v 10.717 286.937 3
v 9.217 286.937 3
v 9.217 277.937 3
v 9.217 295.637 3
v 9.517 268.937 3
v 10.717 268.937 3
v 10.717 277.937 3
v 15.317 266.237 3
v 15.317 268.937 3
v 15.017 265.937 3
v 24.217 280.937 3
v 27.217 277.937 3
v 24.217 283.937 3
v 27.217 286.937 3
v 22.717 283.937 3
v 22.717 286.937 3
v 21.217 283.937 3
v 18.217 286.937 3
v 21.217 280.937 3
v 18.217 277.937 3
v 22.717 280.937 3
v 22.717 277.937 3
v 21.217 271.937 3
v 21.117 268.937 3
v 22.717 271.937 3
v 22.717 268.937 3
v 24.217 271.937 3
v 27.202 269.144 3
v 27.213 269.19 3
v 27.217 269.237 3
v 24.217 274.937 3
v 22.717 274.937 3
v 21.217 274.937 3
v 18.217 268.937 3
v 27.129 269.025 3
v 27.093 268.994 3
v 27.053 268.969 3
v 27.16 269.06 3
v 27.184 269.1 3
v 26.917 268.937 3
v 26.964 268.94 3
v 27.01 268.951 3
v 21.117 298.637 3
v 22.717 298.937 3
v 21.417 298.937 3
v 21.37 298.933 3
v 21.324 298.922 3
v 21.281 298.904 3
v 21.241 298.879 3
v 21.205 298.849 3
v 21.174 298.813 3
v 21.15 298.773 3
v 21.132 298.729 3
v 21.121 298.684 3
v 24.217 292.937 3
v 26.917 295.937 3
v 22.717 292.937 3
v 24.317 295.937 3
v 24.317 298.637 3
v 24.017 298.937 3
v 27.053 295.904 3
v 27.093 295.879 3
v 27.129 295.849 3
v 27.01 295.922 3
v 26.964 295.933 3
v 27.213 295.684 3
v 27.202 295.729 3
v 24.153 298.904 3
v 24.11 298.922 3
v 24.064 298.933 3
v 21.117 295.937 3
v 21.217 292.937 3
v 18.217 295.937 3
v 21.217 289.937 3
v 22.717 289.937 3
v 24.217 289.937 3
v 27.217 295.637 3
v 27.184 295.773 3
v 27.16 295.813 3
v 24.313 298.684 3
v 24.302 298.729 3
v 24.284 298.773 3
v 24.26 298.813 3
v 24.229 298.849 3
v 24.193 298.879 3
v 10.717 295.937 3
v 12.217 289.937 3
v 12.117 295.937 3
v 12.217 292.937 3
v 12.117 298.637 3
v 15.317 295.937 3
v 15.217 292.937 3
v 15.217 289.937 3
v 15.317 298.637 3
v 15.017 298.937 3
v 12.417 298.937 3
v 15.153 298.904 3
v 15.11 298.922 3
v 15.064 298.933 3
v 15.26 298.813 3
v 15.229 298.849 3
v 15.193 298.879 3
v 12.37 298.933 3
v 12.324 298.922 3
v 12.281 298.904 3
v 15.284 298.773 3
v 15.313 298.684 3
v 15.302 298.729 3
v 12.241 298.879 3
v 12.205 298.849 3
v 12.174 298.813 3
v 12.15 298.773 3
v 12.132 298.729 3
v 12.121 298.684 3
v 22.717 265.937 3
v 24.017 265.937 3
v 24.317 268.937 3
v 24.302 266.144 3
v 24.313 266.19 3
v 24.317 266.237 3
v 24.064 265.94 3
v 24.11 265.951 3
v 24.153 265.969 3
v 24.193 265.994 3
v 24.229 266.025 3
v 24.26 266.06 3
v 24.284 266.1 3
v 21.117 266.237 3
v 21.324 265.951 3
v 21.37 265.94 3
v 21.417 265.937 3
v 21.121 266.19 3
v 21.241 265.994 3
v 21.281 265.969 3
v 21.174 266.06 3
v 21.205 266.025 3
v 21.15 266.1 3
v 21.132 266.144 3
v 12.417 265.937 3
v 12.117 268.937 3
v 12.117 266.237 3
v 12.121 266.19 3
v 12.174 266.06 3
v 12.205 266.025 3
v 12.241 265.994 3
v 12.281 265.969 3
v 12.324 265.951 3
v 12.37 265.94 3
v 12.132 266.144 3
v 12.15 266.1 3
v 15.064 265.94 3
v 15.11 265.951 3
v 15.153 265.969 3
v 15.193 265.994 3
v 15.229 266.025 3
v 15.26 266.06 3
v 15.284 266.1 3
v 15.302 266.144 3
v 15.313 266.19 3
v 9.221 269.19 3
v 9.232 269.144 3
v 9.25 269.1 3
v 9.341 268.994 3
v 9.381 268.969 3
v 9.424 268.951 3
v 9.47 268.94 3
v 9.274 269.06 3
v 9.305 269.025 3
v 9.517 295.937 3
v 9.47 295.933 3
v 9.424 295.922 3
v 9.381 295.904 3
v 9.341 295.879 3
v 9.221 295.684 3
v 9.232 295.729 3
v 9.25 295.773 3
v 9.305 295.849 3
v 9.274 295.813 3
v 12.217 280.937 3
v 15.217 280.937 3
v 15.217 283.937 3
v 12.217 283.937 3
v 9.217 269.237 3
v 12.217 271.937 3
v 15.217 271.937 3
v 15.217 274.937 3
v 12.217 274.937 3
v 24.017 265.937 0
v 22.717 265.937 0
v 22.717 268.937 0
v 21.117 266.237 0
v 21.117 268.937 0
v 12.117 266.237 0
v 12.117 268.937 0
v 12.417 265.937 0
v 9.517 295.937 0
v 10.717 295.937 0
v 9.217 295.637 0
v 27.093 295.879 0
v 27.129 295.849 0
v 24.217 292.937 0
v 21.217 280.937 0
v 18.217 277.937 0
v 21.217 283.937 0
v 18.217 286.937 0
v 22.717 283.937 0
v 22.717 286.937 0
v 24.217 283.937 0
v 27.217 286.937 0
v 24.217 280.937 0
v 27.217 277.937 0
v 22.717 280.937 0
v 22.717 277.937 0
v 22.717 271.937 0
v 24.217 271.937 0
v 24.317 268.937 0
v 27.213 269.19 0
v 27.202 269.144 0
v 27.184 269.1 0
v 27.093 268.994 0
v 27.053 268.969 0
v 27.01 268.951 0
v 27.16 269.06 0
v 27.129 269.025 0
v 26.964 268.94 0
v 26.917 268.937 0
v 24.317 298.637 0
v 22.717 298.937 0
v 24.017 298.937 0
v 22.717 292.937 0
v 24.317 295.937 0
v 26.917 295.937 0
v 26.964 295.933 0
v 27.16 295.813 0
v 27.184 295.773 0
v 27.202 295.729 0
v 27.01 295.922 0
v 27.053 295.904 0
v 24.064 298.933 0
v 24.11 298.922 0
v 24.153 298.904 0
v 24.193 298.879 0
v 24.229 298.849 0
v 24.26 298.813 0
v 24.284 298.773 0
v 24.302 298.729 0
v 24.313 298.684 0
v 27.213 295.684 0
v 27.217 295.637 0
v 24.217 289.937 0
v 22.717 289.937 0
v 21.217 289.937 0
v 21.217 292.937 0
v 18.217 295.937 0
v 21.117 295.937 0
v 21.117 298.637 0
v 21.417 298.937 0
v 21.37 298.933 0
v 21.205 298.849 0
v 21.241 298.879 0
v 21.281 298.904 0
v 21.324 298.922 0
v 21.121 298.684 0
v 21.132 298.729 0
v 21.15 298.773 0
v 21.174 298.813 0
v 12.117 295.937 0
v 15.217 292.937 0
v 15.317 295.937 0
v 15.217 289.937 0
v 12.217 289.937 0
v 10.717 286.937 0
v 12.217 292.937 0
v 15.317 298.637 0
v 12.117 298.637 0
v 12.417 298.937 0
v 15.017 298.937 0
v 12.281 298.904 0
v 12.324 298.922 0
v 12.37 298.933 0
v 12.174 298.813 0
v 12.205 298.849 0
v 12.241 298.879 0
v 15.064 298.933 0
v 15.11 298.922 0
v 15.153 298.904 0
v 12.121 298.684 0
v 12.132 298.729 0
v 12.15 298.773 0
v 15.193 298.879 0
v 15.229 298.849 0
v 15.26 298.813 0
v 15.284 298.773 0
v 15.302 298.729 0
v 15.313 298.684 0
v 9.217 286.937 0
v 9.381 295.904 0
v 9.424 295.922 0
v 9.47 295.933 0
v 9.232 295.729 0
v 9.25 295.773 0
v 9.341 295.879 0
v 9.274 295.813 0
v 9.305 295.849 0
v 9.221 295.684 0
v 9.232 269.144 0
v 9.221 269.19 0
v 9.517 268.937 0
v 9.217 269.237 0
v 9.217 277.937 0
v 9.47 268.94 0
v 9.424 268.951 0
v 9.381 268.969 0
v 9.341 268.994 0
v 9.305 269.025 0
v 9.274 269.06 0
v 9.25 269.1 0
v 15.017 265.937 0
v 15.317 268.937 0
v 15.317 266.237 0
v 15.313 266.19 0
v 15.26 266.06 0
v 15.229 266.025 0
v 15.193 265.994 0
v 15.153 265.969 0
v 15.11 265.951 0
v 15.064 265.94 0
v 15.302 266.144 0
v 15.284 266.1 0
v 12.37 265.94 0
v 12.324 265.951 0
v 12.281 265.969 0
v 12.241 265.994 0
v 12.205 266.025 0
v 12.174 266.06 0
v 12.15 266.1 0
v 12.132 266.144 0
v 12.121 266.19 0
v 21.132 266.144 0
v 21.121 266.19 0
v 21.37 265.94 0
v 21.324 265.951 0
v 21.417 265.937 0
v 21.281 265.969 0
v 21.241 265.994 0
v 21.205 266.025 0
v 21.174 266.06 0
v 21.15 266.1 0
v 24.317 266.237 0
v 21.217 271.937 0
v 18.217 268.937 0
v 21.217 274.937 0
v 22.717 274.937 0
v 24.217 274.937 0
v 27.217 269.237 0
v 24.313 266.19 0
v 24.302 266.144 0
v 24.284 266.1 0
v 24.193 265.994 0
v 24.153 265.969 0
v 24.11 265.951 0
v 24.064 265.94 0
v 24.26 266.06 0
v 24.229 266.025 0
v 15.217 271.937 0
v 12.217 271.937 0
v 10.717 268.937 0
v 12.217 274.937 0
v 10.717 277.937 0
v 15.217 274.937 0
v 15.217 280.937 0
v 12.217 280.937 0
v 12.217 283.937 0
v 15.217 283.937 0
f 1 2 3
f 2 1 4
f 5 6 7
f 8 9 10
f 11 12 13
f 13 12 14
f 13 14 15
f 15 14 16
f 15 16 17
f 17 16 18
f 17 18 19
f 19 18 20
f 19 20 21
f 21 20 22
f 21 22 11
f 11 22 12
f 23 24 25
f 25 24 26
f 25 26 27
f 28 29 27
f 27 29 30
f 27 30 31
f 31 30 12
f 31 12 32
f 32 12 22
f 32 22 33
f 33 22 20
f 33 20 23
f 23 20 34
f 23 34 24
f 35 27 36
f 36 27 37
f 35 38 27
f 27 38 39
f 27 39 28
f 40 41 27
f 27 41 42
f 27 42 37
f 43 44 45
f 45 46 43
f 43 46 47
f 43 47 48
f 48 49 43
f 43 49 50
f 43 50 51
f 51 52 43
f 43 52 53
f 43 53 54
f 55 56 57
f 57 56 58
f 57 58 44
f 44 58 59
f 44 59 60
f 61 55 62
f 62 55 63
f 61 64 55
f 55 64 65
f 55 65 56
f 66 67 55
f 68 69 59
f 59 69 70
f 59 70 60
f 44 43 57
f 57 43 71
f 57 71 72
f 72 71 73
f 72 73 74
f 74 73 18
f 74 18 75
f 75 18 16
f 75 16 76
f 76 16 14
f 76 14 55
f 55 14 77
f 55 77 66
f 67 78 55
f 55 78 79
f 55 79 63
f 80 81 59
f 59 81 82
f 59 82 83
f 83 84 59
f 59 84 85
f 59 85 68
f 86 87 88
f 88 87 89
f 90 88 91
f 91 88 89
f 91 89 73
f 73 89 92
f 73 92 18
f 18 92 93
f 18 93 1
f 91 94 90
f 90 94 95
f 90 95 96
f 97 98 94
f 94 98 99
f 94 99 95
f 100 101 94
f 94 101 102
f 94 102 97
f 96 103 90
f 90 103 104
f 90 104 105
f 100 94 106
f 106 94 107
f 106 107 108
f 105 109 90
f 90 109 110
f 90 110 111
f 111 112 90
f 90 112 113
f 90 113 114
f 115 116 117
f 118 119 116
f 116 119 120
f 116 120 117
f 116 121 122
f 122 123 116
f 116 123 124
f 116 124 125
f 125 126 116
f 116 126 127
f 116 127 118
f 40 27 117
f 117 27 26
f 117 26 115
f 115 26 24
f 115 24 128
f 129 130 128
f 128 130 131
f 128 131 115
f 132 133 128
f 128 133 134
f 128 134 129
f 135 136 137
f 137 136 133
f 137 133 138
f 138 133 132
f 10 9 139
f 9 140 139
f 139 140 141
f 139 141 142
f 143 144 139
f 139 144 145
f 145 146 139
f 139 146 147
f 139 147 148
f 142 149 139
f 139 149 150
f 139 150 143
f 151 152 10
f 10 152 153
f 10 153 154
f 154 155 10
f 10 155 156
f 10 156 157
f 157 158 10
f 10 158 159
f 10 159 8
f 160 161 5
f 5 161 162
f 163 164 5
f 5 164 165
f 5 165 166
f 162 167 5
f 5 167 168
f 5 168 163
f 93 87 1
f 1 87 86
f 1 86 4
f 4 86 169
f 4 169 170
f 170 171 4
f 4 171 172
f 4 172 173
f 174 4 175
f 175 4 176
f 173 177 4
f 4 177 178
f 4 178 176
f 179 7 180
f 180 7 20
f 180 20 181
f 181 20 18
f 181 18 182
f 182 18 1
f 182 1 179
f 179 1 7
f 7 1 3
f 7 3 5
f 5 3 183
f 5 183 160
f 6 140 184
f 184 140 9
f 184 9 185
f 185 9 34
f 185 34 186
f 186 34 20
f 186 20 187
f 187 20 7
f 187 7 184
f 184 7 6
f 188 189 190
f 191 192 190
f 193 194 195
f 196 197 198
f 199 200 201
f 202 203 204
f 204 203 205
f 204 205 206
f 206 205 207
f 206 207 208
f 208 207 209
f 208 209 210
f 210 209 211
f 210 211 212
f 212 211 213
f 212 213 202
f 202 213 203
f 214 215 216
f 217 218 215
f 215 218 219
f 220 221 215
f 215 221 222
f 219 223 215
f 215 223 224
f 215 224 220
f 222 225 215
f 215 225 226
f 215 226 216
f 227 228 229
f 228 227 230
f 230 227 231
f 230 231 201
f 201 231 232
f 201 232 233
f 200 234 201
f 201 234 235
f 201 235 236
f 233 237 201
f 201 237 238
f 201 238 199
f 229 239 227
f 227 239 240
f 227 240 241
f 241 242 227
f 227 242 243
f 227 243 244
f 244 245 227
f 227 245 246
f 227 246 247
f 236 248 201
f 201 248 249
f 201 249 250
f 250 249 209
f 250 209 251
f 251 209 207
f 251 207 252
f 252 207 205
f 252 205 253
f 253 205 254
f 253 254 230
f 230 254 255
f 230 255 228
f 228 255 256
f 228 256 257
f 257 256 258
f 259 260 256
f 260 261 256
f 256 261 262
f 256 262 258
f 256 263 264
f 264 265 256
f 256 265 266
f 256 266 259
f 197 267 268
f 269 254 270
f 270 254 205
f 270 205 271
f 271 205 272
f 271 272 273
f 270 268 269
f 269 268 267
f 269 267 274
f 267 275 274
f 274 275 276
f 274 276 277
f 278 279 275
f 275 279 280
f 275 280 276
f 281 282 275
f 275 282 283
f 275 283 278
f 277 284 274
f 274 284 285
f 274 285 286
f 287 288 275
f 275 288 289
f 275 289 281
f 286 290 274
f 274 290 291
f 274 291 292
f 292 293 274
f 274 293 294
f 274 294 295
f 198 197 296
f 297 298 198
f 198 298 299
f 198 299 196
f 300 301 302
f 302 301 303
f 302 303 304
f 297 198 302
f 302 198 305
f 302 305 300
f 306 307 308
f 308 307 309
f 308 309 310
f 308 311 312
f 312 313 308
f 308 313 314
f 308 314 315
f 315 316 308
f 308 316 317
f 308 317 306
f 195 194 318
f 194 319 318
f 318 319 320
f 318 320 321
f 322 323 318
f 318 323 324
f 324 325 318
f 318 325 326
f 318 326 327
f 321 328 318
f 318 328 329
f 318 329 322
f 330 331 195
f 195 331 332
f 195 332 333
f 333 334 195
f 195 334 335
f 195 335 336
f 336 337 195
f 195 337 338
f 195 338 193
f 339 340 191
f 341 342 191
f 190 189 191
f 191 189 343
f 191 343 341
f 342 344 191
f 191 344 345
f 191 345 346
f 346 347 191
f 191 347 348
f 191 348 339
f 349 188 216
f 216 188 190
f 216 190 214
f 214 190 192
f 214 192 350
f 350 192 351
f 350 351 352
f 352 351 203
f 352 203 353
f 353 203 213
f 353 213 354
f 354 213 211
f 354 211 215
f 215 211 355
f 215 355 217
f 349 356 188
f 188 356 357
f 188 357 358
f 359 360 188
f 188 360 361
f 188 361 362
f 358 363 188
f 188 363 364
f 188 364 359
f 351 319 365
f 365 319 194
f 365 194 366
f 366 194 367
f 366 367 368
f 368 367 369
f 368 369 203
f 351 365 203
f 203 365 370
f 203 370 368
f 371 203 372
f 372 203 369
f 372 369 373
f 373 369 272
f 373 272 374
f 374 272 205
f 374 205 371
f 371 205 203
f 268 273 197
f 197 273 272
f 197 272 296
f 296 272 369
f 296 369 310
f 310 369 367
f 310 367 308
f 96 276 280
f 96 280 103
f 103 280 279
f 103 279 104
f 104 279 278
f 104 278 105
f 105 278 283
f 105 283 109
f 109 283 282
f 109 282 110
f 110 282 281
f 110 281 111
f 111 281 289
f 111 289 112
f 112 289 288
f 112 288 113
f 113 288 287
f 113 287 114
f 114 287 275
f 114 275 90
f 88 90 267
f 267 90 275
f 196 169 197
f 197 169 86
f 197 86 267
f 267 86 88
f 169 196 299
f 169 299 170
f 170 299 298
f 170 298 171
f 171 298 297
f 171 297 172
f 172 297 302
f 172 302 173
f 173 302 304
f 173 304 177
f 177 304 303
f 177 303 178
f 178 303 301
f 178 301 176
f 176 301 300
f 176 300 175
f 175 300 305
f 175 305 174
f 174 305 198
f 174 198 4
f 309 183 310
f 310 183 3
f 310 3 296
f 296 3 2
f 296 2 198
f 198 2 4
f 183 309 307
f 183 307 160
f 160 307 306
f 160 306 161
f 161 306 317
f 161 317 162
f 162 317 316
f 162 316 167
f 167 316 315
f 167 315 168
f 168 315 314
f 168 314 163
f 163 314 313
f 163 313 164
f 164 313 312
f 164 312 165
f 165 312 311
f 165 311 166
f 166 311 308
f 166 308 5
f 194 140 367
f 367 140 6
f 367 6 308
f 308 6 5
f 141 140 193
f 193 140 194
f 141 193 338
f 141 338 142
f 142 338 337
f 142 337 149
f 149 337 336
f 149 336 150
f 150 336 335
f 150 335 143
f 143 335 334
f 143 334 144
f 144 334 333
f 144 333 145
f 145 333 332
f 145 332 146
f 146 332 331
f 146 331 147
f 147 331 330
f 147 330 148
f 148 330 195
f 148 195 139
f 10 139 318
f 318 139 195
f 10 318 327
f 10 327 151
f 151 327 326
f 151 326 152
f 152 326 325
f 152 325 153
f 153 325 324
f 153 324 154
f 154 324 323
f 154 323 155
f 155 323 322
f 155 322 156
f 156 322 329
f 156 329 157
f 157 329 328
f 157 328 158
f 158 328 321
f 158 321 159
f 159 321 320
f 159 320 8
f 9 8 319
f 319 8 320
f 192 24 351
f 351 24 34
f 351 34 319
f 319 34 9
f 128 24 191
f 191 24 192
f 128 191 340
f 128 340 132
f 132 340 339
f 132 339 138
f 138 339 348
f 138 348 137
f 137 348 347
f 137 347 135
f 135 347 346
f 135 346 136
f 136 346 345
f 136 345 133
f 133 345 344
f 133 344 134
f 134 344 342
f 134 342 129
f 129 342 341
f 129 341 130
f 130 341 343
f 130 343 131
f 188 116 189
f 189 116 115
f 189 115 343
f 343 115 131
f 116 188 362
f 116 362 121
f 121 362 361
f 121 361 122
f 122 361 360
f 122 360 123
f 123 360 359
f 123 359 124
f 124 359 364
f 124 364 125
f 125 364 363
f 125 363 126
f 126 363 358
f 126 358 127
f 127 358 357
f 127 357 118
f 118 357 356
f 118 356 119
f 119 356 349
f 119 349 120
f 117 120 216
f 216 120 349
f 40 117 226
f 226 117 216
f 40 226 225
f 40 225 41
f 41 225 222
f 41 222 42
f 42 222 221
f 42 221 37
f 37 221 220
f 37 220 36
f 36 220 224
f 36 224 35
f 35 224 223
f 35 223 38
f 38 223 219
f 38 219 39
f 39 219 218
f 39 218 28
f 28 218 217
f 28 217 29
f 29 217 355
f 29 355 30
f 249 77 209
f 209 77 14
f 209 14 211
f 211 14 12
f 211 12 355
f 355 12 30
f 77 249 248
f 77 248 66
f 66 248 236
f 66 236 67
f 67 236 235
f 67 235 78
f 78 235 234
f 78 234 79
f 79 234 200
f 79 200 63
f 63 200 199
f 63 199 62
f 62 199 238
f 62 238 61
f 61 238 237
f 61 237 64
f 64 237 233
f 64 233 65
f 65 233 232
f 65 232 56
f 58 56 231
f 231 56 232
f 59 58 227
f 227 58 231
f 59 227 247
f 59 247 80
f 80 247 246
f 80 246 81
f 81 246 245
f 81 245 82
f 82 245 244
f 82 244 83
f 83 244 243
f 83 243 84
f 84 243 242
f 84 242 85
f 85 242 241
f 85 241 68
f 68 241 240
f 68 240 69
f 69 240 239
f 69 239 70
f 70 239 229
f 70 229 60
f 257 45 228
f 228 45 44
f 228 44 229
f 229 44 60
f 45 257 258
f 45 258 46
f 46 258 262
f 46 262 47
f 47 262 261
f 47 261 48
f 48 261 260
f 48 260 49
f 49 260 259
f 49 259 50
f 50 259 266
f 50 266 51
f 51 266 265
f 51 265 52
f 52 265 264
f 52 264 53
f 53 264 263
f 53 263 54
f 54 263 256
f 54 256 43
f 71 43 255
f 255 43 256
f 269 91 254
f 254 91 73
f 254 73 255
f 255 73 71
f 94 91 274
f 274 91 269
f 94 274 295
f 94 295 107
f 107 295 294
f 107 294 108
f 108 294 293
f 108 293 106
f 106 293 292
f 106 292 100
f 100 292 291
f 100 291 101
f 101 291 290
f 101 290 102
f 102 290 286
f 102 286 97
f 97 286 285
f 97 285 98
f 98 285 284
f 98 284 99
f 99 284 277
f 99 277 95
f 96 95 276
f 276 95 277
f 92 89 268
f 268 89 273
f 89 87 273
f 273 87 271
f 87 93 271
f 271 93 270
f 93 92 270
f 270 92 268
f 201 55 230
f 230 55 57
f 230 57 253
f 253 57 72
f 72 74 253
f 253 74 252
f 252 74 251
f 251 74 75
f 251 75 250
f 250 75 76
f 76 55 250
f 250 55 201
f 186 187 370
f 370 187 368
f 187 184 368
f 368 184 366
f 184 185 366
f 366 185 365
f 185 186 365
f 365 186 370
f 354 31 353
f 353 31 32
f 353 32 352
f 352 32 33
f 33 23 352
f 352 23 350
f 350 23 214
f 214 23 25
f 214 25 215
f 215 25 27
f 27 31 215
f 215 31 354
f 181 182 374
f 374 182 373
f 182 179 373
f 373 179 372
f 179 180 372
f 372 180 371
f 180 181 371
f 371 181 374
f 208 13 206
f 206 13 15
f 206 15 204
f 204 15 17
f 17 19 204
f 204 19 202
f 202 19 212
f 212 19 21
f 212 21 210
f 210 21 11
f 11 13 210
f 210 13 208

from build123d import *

# Parameters (mm, degrees)
MODEL_W                 = 3
MODEL_H                 = 3
SALIENTE_EXTRUIR1_DEPTH = 3


with BuildPart() as part:
    # Model → Saliente-Extruir1 (new body)
    with BuildSketch(Plane.XY):
        with BuildLine():
            Line((9.216868636, 295.636684928), (9.216868636, 269.236684928))
            ThreePointArc((9.216868636, 269.236684928), (9.304736602, 269.024552894), (9.516868636, 268.936684928))
            Line((9.516868636, 268.936684928), (12.116868636, 268.936684928))
            Line((12.116868636, 268.936684928), (12.116868636, 266.236684928))
            ThreePointArc((12.116868636, 266.236684928), (12.204736602, 266.024552894), (12.416868637, 265.936684928))
            Line((12.416868637, 265.936684928), (15.016868636, 265.936684928))
            ThreePointArc((15.016868636, 265.936684928), (15.229000671, 266.024552894), (15.316868637, 266.236684928))
            Line((15.316868637, 266.236684928), (15.316868637, 268.936684928))
            Line((15.316868637, 268.936684928), (21.116868637, 268.936684928))
            Line((21.116868637, 268.936684928), (21.116868637, 266.236684928))
            ThreePointArc((21.116868637, 266.236684928), (21.204736602, 266.024552894), (21.416868637, 265.936684928))
            Line((21.416868637, 265.936684928), (24.016868636, 265.936684928))
            ThreePointArc((24.016868636, 265.936684928), (24.229000671, 266.024552894), (24.316868637, 266.236684928))
            Line((24.316868637, 266.236684928), (24.316868637, 268.936684928))
            Line((24.316868637, 268.936684928), (26.916868636, 268.936684928))
            ThreePointArc((26.916868636, 268.936684928), (27.129000671, 269.024552894), (27.216868636, 269.236684928))
            Line((27.216868636, 269.236684928), (27.216868636, 295.636684928))
            ThreePointArc((27.216868636, 295.636684928), (27.129000671, 295.848816963), (26.916868636, 295.936684928))
            Line((26.916868636, 295.936684928), (24.316868637, 295.936684928))
            Line((24.316868637, 295.936684928), (24.316868637, 298.636684928))
            ThreePointArc((24.316868637, 298.636684928), (24.229000671, 298.848816963), (24.016868636, 298.936684928))
            Line((24.016868636, 298.936684928), (21.416868637, 298.936684928))
            ThreePointArc((21.416868637, 298.936684928), (21.204736602, 298.848816963), (21.116868637, 298.636684928))
            Line((21.116868637, 298.636684928), (21.116868637, 295.936684928))
            Line((21.116868637, 295.936684928), (15.316868637, 295.936684928))
            Line((15.316868637, 295.936684928), (15.316868637, 298.636684928))
            ThreePointArc((15.316868637, 298.636684928), (15.229000671, 298.848816963), (15.016868636, 298.936684928))
            Line((15.016868636, 298.936684928), (12.416868637, 298.936684928))
            ThreePointArc((12.416868637, 298.936684928), (12.204736602, 298.848816963), (12.116868636, 298.636684928))
            Line((12.116868636, 298.636684928), (12.116868636, 295.936684928))
            Line((12.116868636, 295.936684928), (9.516868636, 295.936684928))
            ThreePointArc((9.516868636, 295.936684928), (9.304736602, 295.848816963), (9.216868636, 295.636684928))
        make_face()
        with Locations((13.716868636, 291.436684928)):
            Rectangle(MODEL_W, MODEL_H, mode=Mode.SUBTRACT)
        with Locations((22.716868636, 291.436684928)):
            Rectangle(MODEL_W, MODEL_H, mode=Mode.SUBTRACT)
        with Locations((13.716868636, 273.436684928)):
            Rectangle(MODEL_W, MODEL_H, mode=Mode.SUBTRACT)
        with Locations((22.716868636, 273.436684928)):
            Rectangle(MODEL_W, MODEL_H, mode=Mode.SUBTRACT)
        with Locations((13.716868636, 282.436684928)):
            Rectangle(MODEL_W, MODEL_H, mode=Mode.SUBTRACT)
        with Locations((22.716868636, 282.436684928)):
            Rectangle(MODEL_W, MODEL_H, mode=Mode.SUBTRACT)
    extrude(amount=SALIENTE_EXTRUIR1_DEPTH)


solid = part.part
